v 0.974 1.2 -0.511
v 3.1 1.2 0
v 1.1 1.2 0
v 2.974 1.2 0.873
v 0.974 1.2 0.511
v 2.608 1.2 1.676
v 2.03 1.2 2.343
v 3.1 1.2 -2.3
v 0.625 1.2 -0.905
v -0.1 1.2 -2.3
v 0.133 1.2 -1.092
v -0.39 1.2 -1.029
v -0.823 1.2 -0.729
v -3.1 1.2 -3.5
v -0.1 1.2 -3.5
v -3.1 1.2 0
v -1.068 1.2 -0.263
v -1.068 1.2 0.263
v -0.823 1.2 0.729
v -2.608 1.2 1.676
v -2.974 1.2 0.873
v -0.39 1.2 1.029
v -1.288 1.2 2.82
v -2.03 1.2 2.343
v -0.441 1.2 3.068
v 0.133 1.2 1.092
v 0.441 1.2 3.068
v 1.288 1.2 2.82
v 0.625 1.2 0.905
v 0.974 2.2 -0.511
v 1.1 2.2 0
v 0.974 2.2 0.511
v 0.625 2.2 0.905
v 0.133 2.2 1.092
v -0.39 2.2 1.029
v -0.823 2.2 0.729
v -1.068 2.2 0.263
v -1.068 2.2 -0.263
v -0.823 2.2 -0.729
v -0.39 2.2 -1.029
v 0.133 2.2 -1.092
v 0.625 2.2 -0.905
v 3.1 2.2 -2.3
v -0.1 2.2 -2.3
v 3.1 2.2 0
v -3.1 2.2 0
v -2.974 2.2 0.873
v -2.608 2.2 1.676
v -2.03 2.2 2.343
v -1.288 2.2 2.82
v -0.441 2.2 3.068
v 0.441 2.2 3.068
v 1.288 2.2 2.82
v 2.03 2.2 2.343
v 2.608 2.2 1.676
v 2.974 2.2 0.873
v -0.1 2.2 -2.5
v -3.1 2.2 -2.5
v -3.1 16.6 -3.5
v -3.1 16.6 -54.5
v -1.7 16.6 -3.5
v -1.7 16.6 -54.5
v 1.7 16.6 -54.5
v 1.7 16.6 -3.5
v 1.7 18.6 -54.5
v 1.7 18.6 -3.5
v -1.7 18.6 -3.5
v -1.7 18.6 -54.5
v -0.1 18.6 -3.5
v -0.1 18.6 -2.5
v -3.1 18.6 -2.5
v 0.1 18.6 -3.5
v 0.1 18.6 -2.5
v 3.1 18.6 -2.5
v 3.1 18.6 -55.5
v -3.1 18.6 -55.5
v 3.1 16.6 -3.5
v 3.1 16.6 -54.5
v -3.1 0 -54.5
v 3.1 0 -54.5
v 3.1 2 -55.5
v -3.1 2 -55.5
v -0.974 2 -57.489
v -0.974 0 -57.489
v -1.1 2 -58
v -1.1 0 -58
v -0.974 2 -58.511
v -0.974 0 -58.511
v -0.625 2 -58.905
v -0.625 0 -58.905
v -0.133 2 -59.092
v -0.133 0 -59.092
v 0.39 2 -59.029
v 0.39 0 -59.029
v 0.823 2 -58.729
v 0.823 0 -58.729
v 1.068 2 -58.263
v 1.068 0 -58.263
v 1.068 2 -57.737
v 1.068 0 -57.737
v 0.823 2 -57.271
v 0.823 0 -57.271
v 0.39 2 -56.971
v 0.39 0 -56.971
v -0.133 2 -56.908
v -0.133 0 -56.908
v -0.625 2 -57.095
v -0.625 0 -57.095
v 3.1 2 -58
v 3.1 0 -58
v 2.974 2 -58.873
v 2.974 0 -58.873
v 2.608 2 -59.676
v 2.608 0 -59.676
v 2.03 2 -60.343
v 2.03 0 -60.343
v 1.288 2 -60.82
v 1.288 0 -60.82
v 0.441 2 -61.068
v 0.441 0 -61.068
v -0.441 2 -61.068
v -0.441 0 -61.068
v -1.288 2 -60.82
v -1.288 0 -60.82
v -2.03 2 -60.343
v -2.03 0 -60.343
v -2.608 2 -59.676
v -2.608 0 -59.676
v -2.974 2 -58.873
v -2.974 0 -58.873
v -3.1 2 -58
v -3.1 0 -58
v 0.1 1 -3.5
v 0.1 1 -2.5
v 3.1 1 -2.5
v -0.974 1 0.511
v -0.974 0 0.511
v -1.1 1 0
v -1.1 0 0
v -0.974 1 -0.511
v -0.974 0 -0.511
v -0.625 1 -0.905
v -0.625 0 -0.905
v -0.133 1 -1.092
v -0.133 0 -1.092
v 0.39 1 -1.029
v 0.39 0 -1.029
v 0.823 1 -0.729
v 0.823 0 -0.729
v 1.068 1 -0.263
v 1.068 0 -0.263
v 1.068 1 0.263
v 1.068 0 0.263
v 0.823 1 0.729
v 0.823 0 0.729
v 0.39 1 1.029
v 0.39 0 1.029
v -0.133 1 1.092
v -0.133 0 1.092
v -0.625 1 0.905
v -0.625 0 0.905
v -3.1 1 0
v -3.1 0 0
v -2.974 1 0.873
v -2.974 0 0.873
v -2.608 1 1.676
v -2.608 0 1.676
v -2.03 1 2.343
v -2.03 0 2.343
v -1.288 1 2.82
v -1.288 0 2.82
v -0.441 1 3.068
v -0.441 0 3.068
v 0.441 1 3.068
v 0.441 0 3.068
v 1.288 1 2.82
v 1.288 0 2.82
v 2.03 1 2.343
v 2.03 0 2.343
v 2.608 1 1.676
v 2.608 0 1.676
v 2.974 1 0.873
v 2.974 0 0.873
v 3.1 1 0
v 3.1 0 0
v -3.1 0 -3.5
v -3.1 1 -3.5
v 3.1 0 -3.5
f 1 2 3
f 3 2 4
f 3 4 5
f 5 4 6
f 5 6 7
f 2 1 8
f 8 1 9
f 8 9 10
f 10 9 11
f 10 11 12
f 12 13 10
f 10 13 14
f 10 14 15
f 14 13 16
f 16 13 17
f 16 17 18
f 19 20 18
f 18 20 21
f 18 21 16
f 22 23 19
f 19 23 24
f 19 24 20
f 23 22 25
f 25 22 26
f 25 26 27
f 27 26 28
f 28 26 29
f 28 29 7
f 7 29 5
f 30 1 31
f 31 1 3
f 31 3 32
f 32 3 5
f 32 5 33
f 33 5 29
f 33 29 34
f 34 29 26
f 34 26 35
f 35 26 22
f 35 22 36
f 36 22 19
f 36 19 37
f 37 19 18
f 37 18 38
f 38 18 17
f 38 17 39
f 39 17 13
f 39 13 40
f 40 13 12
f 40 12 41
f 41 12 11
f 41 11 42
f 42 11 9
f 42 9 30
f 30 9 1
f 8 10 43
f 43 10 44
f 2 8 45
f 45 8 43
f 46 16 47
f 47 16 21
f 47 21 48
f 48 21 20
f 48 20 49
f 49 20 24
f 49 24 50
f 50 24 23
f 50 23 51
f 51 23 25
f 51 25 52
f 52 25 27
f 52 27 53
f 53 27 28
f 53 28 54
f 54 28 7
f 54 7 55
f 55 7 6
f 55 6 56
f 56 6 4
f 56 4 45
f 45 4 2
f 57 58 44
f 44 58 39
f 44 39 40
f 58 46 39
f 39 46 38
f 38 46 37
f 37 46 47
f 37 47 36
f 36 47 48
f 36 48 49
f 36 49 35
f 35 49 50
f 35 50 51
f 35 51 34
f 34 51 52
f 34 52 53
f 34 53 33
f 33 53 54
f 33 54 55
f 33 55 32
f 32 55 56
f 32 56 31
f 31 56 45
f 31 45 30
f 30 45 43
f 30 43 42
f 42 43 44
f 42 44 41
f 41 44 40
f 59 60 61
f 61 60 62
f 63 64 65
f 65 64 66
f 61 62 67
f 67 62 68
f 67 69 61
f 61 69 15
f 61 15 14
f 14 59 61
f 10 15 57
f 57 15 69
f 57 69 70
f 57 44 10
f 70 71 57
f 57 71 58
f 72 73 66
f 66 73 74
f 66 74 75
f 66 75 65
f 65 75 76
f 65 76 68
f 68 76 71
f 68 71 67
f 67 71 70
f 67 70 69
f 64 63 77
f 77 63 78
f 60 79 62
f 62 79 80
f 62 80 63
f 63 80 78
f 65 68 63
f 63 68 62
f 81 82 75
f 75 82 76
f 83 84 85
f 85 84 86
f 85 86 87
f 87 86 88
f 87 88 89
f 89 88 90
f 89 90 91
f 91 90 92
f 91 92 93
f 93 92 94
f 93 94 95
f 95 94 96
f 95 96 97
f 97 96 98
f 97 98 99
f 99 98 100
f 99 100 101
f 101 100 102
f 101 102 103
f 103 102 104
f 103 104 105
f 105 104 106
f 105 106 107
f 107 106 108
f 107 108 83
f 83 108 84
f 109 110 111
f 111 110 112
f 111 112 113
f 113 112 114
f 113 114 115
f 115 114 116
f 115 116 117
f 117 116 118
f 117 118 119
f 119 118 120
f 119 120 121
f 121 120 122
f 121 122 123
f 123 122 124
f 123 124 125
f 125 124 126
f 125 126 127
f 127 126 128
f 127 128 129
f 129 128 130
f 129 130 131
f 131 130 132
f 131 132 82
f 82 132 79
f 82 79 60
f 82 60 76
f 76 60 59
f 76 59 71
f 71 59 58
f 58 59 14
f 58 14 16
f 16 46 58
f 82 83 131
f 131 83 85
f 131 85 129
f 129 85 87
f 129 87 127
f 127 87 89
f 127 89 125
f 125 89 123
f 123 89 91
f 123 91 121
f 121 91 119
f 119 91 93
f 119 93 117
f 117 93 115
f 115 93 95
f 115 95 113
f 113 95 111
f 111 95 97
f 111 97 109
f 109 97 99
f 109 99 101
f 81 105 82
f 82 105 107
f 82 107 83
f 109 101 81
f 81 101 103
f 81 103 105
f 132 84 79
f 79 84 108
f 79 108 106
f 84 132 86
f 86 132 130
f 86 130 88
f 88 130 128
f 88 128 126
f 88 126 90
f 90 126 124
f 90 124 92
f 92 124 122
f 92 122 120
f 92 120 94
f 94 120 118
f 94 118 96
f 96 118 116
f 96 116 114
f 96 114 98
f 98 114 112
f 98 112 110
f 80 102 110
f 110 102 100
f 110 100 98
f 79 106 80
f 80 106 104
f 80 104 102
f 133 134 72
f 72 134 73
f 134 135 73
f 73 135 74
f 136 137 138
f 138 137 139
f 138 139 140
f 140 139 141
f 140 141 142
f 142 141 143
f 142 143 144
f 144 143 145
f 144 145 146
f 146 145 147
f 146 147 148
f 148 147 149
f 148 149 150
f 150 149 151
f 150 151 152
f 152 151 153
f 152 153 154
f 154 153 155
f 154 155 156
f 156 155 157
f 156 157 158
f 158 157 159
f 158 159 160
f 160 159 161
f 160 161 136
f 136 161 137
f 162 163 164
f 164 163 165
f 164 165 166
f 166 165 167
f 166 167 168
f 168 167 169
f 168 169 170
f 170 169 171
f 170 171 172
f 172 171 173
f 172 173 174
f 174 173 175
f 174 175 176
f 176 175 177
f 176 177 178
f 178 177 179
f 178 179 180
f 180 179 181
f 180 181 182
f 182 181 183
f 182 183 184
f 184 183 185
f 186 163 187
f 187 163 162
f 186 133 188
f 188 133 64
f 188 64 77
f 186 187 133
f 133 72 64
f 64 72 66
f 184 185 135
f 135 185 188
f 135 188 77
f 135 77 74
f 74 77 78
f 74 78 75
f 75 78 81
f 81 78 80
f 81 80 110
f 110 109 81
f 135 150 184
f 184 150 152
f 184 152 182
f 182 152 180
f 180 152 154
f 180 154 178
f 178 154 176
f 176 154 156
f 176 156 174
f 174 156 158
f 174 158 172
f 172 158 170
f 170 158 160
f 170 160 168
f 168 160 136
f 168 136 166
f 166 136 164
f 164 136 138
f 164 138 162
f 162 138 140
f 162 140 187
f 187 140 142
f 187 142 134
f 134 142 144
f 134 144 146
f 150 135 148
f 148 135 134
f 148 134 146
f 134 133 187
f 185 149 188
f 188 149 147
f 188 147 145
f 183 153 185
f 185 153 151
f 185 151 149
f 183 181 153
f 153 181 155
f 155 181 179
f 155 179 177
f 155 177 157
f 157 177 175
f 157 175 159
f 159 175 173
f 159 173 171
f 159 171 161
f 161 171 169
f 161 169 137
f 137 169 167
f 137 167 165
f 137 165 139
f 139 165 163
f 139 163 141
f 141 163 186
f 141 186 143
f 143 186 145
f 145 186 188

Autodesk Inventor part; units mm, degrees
ref_plane "YZ Plane" through (0, 0, 0) normal (1, 0, 0) x (0, 1, 0)
ref_plane "XZ Plane" through (0, 0, 0) normal (0, 1, 0) x (-1, 0, 0)
sketch "Sketch1" plane through (0, 0, 0) normal (0, 1, 0) x (-1, 0, 0)
  circle A0 centre (0, 0) radius 1.1
  arc A1 (3.1, 0) -> (-3.1, 0) centre (0, 0) ccw
  circle A2 centre (0, -58) radius 1.1
  arc A3 (-3.1, -58) -> (3.1, -58) centre (0, -58) ccw
  line L0 (3.1, -58) -> (3.1, -54.5)
  line L1 (-3.1, -58) -> (-3.1, -54.5)
  line L2 (3.1, -54.5) -> (-3.1, -54.5)
  line L3 (3.1, -3.5) -> (-3.1, -3.5)
  line L4 (-3.1, -3.5) -> (-3.1, 0)
  line L5 (3.1, 0) -> (3.1, -3.5)
  line L6 (3.1, -55.5) -> (-3.1, -55.5)
  line L7 (3.1, -2.5) -> (-3.1, -2.5)
  line L8 (-0.1, -2.5) -> (-0.1, -3.5)
  dimension "d0" = 2.2
  dimension "d1" = 2
  dimension "d2" = 2.2
  dimension "d3" = 2
  dimension "d4" = 58
  dimension "d5" = 3.5
  dimension "d6" = 3.5
  dimension "d7" = 1
  dimension "d8" = 1
  dimension "d17" = 0.1
extrude "Extrusion1" add sketch "Sketch1" along normal blind 2 contours L1 L6 L0 A3
extrude "Extrusion5" add sketch "Sketch1" along normal blind 1 contours L5 L7 L4 A1 | L5 L3 L8 L7
extrude "Extrusion2" add sketch "Sketch1" along normal blind 16.6 contours L7 L8 L3 L4 | L1 L2 L0 L6
sketch "Sketch2" plane through (0, 16.6, 0) normal (0, 1, 0) x (1, 0, 0)
  line L0 (-3.1, 2.5) -> (-3.1, 0) construction
  line L1 (3.1, 55.5) -> (3.1, 58) construction
  line L2 (-3.1, 2.5) -> (3.1, 2.5)
  line L3 (3.1, 2.5) -> (3.1, 55.5)
  line L4 (3.1, 55.5) -> (-3.1, 55.5)
  line L5 (-3.1, 55.5) -> (-3.1, 2.5)
  line L6 (3.1, 3.5) -> (0.1, 3.5) construction
  line L7 (-3.1, 54.5) -> (3.1, 54.5) construction
  line L8 (-1.7, 3.5) -> (1.7, 3.5)
  line L9 (1.7, 3.5) -> (1.7, 54.5)
  line L10 (1.7, 54.5) -> (-1.7, 54.5)
  line L11 (-1.7, 54.5) -> (-1.7, 3.5)
  line L12 (3.1, 3.5) -> (-3.1, 3.5) projected
  line L13 (-0.1, 3.5) -> (-0.1, 2.5)
  line L14 (0.1, 3.5) -> (0.1, 2.5)
  point P0 (0, 0)
  point P1 (0, 3.5)
  dimension "d13" = 1.4
  dimension "d14" = 1.4
  dimension "d37" = 0.2
  dimension "d38" = 0.1
extrude "Extrusion3" add sketch "Sketch2" along normal blind 2 contours L5 L12 L8 L13 L2 | L5 L4 L3 L12 L9 L10 L11 | L14 L8 L12 L3 L2
ref_plane "Work Plane3" through (0, 1.2, 0) normal (0, 1, 0) x (1, 0, 0)
sketch "Sketch4" plane through (0, 1.2, 0) normal (0, 1, 0) x (1, 0, 0)
  arc A0 (-3.1, 0) -> (3.1, 0) centre (0, 0) ccw projected
  circle A1 centre (0, 0) radius 1.1 projected
  line L0 (-3.1, 3.5) -> (-3.1, 0) construction
  line L1 (3.1, 0) -> (3.1, 3.5) construction
  line L2 (3.1, 2.3) -> (3.1, 0)
  line L3 (3.1, 2.5) -> (0.1, 2.5) construction
  line L4 (-0.1, 2.3) -> (-0.1, 3.5)
  line L5 (-0.1, 3.5) -> (-3.1, 3.5)
  line L6 (3.1, 2.5) -> (0.1, 2.5) projected
  line L7 (-3.1, 2.5) -> (-0.1, 2.5)
  line L8 (-0.1, 2.3) -> (3.1, 2.3)
  line L9 (-3.1, 0) -> (-3.1, 3.5)
  dimension "d28" = 0.1
  dimension "d29" = 1
  dimension "d30" = 0.2
extrude "Extrusion6" add sketch "Sketch4" along normal blind 1
extrude "Extrusion8" add sketch "Sketch4" along normal up to surface (15.4 mm away) contours L9 L5 L4 L7
equation "\"d0\" = bolt_thread_diameter + 2 * tol"
equation "\"d1\" = thickness"
equation "\"d2\" = bolt_thread_diameter + 2 * tol"
equation "\"d3\" = thickness"
equation "\"d4\" = hole_separation"
equation "\"d5\" = hole_pin_separation - tol"
equation "\"d6\" = hole_pin_separation - tol"
equation "\"d7\" = minor_thickness"
equation "\"d8\" = minor_thickness"
equation "\"d17\" = tol"
equation "\"d9\" = thickness"
equation "\"d24\" = 0.5 * thickness"
equation "\"d11\" = wire_height + pin_base_height + tol"
equation "\"d13\" = overhang"
equation "\"d14\" = overhang"
equation "\"d37\" = 2 * tol"
equation "\"d38\" = tol"
equation "\"d15\" = thickness"
equation "\"d28\" = tol"
equation "\"d29\" = minor_thickness"
equation "\"d30\" = 2 * tol"
equation "\"d31\" = 0.5 * thickness"
equation "\"d35\" = 0.5 * thickness"
equation "\"wire_height\" = 14"
equation "\"hole_separation\" = 58"
equation "\"pin_base_height\" = 2.5"
equation "\"hole_pin_separation\" = 3.6"
equation "\"minor_thickness\" = 1"
equation "\"overhang\" = 1.4"
equation "\"d26\" = 2 * tol"
equation "\"bolt_thread_diameter\" = 2"
equation "\"tol\" = 0.1"
equation "\"thickness\" = 2"
properties part number "WIRE_HOUSING" material "PC/ABS Plastic"
